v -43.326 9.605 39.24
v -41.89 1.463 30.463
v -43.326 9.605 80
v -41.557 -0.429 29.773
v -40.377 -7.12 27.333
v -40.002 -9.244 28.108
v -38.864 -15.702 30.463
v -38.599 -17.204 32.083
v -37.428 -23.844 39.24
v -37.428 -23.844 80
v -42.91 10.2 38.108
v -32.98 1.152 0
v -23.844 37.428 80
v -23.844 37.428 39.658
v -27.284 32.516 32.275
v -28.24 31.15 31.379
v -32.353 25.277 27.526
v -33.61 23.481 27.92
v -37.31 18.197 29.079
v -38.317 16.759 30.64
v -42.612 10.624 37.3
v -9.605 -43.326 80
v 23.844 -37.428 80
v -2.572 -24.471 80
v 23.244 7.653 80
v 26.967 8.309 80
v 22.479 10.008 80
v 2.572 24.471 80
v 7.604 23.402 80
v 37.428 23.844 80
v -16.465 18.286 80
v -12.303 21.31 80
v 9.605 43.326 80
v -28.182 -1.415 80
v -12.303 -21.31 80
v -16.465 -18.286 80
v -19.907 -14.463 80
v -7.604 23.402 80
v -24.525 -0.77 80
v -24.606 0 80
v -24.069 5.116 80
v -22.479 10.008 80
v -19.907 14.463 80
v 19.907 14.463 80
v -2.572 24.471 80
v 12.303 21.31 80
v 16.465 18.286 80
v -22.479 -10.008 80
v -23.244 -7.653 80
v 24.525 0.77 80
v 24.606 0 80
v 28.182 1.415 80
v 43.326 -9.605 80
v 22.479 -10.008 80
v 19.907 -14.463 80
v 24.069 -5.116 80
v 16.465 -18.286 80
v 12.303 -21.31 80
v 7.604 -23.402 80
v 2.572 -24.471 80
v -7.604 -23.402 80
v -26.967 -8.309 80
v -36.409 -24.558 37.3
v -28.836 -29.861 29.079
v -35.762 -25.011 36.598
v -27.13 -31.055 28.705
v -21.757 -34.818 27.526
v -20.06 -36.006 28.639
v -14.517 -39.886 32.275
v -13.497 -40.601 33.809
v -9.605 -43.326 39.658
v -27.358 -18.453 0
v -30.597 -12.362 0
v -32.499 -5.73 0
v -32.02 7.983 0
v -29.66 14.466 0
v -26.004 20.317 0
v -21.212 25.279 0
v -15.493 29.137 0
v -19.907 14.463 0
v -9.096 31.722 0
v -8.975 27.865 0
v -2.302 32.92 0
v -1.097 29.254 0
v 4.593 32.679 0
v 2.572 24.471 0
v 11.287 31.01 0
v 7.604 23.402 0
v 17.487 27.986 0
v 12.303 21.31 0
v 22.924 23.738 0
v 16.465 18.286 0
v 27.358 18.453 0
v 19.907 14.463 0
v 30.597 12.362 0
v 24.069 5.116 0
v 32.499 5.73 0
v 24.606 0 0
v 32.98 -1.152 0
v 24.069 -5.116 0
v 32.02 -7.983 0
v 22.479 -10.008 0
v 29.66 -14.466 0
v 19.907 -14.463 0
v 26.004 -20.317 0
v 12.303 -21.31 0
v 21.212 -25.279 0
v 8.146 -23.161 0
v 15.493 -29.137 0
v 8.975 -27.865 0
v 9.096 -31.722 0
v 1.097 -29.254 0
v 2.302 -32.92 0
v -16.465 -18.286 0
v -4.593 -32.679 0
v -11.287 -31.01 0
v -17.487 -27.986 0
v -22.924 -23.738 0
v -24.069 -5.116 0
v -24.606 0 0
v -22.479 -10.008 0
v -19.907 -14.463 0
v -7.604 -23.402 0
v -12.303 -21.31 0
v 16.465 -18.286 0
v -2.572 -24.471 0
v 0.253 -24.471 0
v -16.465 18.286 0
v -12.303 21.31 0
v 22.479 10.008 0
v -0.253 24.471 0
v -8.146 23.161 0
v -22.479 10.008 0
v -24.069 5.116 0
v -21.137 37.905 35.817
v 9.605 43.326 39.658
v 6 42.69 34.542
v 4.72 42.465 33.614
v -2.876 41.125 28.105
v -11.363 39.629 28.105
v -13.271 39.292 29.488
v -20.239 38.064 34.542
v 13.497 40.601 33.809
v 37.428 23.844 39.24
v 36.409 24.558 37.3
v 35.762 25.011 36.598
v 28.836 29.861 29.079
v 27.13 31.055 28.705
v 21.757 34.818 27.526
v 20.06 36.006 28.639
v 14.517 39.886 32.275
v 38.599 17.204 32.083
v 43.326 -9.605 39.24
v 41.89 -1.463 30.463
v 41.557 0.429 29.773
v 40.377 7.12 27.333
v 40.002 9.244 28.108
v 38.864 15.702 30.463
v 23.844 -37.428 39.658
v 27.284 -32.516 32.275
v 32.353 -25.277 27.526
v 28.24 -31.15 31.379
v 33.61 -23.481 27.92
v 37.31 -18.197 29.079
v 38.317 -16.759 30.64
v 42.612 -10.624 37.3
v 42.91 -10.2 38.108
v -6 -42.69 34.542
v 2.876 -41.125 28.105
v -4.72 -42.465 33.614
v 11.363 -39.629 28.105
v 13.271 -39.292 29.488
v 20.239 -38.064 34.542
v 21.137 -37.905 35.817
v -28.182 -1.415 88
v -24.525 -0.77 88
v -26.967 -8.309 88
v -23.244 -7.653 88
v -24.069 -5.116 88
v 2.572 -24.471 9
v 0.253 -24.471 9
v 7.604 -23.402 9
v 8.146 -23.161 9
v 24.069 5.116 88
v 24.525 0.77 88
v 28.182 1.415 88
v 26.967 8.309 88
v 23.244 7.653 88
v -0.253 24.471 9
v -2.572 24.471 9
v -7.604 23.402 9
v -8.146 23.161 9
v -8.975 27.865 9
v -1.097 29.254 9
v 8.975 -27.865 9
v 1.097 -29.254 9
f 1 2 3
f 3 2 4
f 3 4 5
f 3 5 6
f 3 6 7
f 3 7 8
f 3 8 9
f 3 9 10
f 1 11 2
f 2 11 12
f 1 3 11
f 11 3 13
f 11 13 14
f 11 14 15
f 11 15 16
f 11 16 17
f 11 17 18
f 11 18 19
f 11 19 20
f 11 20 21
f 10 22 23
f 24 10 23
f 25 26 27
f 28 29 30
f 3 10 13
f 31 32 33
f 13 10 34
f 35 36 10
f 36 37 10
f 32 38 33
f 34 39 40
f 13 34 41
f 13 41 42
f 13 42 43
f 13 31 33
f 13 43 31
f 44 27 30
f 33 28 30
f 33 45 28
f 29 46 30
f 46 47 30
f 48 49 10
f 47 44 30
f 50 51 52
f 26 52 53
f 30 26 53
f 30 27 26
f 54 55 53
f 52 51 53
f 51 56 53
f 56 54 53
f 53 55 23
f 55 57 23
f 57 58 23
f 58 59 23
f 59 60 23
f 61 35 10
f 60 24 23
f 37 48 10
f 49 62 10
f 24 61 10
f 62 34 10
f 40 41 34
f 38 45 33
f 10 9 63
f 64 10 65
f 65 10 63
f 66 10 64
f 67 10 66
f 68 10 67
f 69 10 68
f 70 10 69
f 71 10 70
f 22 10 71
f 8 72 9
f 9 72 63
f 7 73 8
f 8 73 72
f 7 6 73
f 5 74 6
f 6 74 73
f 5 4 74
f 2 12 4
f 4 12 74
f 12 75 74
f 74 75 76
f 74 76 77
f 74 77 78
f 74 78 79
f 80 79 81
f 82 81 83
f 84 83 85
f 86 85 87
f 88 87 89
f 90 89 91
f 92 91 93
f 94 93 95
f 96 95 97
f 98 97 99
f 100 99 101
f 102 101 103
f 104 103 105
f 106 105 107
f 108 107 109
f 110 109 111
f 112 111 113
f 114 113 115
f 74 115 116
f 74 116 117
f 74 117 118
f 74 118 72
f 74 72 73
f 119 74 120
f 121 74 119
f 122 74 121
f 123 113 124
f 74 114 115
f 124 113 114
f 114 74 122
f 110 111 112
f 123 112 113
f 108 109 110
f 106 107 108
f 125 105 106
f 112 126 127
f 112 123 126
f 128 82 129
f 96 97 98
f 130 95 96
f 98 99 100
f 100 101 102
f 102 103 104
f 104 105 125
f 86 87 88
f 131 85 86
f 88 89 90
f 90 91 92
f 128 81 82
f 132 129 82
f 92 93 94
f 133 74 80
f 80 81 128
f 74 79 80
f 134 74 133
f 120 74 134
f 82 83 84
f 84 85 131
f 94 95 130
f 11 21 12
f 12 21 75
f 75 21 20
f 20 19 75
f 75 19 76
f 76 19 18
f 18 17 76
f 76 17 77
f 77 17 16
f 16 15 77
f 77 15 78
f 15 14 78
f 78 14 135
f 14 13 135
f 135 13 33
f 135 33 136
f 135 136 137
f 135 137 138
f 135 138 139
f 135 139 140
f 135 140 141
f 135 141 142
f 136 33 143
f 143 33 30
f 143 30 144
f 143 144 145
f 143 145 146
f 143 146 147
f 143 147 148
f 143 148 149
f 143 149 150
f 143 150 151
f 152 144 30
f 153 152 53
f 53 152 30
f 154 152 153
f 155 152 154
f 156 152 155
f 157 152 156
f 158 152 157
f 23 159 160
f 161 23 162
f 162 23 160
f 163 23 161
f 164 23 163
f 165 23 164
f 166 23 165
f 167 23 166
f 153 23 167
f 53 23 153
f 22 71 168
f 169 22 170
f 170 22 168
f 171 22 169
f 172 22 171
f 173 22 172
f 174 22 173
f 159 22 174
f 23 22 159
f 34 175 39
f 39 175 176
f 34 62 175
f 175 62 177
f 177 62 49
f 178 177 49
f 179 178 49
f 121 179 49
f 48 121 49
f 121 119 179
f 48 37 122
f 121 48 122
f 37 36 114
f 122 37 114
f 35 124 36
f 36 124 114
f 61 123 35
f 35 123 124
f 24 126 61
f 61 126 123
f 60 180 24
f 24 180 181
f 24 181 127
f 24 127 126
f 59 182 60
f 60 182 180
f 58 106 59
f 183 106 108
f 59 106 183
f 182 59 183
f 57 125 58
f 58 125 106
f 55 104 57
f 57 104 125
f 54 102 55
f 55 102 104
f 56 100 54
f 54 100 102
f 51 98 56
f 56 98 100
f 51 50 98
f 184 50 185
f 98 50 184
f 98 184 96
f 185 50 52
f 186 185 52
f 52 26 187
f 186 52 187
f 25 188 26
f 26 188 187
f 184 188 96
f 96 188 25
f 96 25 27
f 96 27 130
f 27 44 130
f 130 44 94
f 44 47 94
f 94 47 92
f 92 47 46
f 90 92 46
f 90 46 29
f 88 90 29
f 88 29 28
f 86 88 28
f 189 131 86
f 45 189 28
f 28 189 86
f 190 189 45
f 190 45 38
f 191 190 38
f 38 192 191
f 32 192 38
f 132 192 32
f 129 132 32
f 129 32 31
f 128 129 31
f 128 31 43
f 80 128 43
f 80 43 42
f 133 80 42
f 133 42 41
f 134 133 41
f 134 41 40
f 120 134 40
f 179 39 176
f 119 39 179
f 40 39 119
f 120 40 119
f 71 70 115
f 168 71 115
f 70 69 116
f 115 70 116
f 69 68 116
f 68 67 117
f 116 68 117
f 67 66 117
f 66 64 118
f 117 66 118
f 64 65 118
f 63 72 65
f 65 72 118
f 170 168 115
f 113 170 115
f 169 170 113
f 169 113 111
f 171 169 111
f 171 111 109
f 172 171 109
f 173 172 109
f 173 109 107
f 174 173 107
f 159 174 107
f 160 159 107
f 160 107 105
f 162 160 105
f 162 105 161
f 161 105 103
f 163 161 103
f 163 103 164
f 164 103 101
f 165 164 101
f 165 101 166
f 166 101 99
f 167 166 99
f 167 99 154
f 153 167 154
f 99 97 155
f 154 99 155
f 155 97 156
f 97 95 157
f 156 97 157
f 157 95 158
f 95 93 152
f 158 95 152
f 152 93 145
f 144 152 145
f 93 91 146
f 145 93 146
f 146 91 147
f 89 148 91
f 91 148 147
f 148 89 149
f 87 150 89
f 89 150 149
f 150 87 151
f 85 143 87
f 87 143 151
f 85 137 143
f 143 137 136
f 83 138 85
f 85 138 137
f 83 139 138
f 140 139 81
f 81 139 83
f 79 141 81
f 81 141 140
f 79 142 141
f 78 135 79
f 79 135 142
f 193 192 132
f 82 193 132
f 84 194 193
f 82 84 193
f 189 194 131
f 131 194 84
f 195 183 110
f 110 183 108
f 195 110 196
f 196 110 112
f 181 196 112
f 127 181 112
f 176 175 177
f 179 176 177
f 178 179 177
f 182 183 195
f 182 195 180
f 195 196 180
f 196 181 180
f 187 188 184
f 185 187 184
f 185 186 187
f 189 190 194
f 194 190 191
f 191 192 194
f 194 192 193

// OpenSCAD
// file: shapes.scad
/*
 *  OpenSCAD Shapes Library (www.openscad.at)
 *  Copyright (C) 2009  Catarina Mota <clifford@clifford.at>
 *
 *  This program is free software; you can redistribute it and/or modify
 *  it under the terms of the GNU General Public License as published by
 *  the Free Software Foundation; either version 2 of the License, or
 *  (at your option) any later version.
 *
 *  This program is distributed in the hope that it will be useful,
 *  but WITHOUT ANY WARRANTY; without even the implied warranty of
 *  MERCHANTABILITY or FITNESS FOR A PARTICULAR PURPOSE.  See the
 *  GNU General Public License for more details.
 *
 *  You should have received a copy of the GNU General Public License
 *  along with this program; if not, write to the Free Software
 *  Foundation, Inc., 59 Temple Place, Suite 330, Boston, MA  02111-1307  USA
 *
*/


//box(width, height, depth);
//roundedBox(width, height, depth, factor);
//cone(height, radius);
//oval(width, height, depth);
//tube(height, radius, wall);
//ovalTube(width, height, depth, wall);
//hexagon(height, depth);
//octagon(height, depth);
//dodecagon(height, depth);
//hexagram(height, depth);
//rightTriangle(adjacent, opposite, depth);
//equiTriangle(side, depth);
//12ptStar(height, depth);

//----------------------

//roundedBox(120, 60, 3, 8);

//----------------------

module box(w,h,d) {
	scale ([w,h,d]) cube(1, true);
}

module roundedBox(w,h,d,f){
	difference(){
		box(w,h,d);
		translate([-w/2,h/2,0]) cube(w/(f/2),true);
		translate([w/2,h/2,0]) cube(w/(f/2),true);
		translate([-w/2,-h/2,0]) cube(w/(f/2),true);
		translate([w/2,-h/2,0]) cube(w/(f/2),true);
	}
	translate([-w/2+w/f,h/2-w/f,-d/2]) cylinder(d,w/f, w/f);
	translate([w/2-w/f,h/2-w/f,-d/2]) cylinder(d,w/f, w/f);
	translate([-w/2+w/f,-h/2+w/f,-d/2]) cylinder(d,w/f, w/f);
	translate([w/2-w/f,-h/2+w/f,-d/2]) cylinder(d,w/f, w/f);
}

module cone(height, radius) {
		cylinder(height, radius, 0);
}

module oval(w,h,d) {
	scale ([w/100, h/100, 1]) cylinder(d, 50, 50);
}

module tube(height, radius, wall) {
	difference(){
		cylinder(height, radius, radius);
		cylinder(height, radius-wall, radius-wall);
	}
}

module ovalTube(w,h,d,wall) {
	difference(){
		scale ([w/100, h/100, 1]) cylinder(d, 50, 50);
		scale ([w/100, h/100, 1]) cylinder(d, 50-wall, 50-wall);
	}
}

module hexagon(height, depth) {
	boxWidth=height/1.75;
		union(){
			box(boxWidth, height, depth);
			rotate([0,0,60]) box(boxWidth, height, depth);
			rotate([0,0,-60]) box(boxWidth, height, depth);
		}
}

module octagon(height, depth) {
	intersection(){
		box(height, height, depth);
		rotate([0,0,45]) box(height, height, depth);
	}
}

module dodecagon(height, depth) {
	intersection(){
		hexagon(height, depth);
		rotate([0,0,90]) hexagon(height, depth);
	}
}

module hexagram(height, depth) {
	boxWidth=height/1.75;
	intersection(){
		box(height, boxWidth, depth);
		rotate([0,0,60]) box(height, boxWidth, depth);
	}
	intersection(){
		box(height, boxWidth, depth);
		rotate([0,0,-60]) box(height, boxWidth, depth);
	}
	intersection(){
		rotate([0,0,60]) box(height, boxWidth, depth);
		rotate([0,0,-60]) box(height, boxWidth, depth);
	}
}

module rightTriangle(adjacent, opposite, depth) {
	difference(){
		translate([-adjacent/2,opposite/2,0]) box(adjacent, opposite, depth);
		translate([-adjacent,0,0]){
			rotate([0,0,atan(opposite/adjacent)]) dislocateBox(adjacent*4, opposite, depth);
		}
	}
}

module equiTriangle(side, depth) {
	difference(){
		translate([-side/2,side/2,0]) box(side, side, depth);
		rotate([0,0,30]) dislocateBox(side*2, side, depth);
		translate([-side,0,0]){
			rotate([0,0,60]) dislocateBox(side*2, side, depth);
		}
	}
}

module 12ptStar(height, depth) {
	starNum=3;
	starAngle=360/starNum;
	for (s=[1:starNum]){
		rotate([0, 0, s*starAngle]) box(height, height, depth);
	}
}

//-----------------------
//MOVES THE ROTATION AXIS OF A BOX FROM ITS CENTER TO THE BOTTOM LEFT CORNER
module dislocateBox(w,h,d){
	translate([w/2,h,0]){
		difference(){
			box(w, h*2, d+1);
			translate([-w,0,0]) box(w, h*2, d+1);
		}
	}
}
// main file
include <shapes.scad>  // using Catarina Mota's shapes library

boxheight = 80;
boxwidth = 82;
insideradius = ((((15/16)+1) * 25.4) / 2);
connectorheight = 8; 
connectorwidth = 7;
smaller = 8; 
difference ()
{
	rotate ([0,0,100]) union ()
		{
		translate ([0,0,0]) intersection ()
			{
			rotate ([0,0,90]) cylinder (h=boxwidth/2, r1 = (boxwidth/2)-smaller, r2 = (boxwidth/2)+(smaller/2));
			translate ([0,0,boxheight/4]) octagon (boxwidth, boxheight/2);
			}
		translate ([0,0,boxheight/(1+(1/3))]) octagon (boxwidth, boxheight/2);
		translate ([-connectorwidth/2,-(boxwidth-(smaller*3+2))/2,boxheight]) cube ([connectorwidth, boxwidth-(smaller*3+2), connectorheight]); 
		}
	translate ([0,0,0]) cylinder (h=(boxheight+connectorheight), r = insideradius, $fn=30);
	rotate ([0,0,10]) translate ([-(connectorwidth+1)/2,-(boxwidth-(smaller*3))/2,0]) cube ([connectorwidth+1, boxwidth-(3*smaller), connectorheight+1]); 
}
//translate ([50,0,0]) cube ([1,2,boxheight+connectorheight]); //used to check measurements

/* Old ideas go here
pegwidth = 8;
pegheight = 7;
ridgeheight = 2.5;
ridgedepth = 3.5;
pegoffset = ((boxwidth/2)-16);
holeoffset = ((boxwidth/2)-18);
		translate ([-boxwidth/2,-boxwidth/2,0]) cube ([boxwidth, boxwidth, boxheight]);
	for (spacing2 = [0:10])
		{
		for (spacing = [0:10]) 
			{
			translate ([-37.5+(spacing*7),-32.5+(spacing2*7),-0.001]) rotate ([90,,0]) cube(5, 5, boxwidth-6);
			}
		}
	//to make all the squares open on the inside.  Should prevent random block filling
	translate ([23,2.5,-0.001]) rotate ([90,,0]) cube(5, 5, boxwidth-6);
	translate ([23,-4.5,-0.001]) rotate ([90,,0]) cube(5, 5, boxwidth-6);
	translate ([23,9.5,-0.001]) rotate ([90,,0]) cube(5, 5, boxwidth-6);
	//translate ([25.5,33.5,-0.001]) rotate ([90,,0]) cube(5, 5, boxwidth-6);
	translate ([4.5,26.5,-0.001]) rotate ([90,,0]) cube(5, 5, boxwidth-6);
	translate ([-2.5,26.5,-0.001]) rotate ([90,,0]) cube(5, 5, boxwidth-6);
	translate ([-9.5,26.5,-0.001]) rotate ([90,,0]) cube(5, 5, boxwidth-6);
	translate ([-27.5,9.5,-0.001]) rotate ([90,,0]) cube(5, 5, boxwidth-6);
	translate ([-27.5,2.5,-0.001]) rotate ([90,,0]) cube(5, 5, boxwidth-6);
	translate ([-27.5,-4.5,-0.001]) rotate ([90,,0]) cube(5, 5, boxwidth-6);
	translate ([-9.5,-22.5,-0.001]) rotate ([90,,0]) cube(5, 5, boxwidth-6);
	translate ([-2.5,-22.5,-0.001]) rotate ([90,,0]) cube(5, 5, boxwidth-6);
	translate ([4.5,-22.5,-0.001]) rotate ([90,,0]) cube(5, 5, boxwidth-6);


		for (spacing = [0:7]) 
			{
			translate ([-35+(spacing*10),0,boxheight+ridgeheight]) rotate ([90,225,0]) rightTriangle(5, 5, boxwidth-6);
			}
	for (spacing = [0:8]) 
		{
		translate ([-35+(spacing*8.7),0,ridgedepth]) rotate ([90,225,0]) rightTriangle(5, 5, boxwidth-4);
		}
*/
